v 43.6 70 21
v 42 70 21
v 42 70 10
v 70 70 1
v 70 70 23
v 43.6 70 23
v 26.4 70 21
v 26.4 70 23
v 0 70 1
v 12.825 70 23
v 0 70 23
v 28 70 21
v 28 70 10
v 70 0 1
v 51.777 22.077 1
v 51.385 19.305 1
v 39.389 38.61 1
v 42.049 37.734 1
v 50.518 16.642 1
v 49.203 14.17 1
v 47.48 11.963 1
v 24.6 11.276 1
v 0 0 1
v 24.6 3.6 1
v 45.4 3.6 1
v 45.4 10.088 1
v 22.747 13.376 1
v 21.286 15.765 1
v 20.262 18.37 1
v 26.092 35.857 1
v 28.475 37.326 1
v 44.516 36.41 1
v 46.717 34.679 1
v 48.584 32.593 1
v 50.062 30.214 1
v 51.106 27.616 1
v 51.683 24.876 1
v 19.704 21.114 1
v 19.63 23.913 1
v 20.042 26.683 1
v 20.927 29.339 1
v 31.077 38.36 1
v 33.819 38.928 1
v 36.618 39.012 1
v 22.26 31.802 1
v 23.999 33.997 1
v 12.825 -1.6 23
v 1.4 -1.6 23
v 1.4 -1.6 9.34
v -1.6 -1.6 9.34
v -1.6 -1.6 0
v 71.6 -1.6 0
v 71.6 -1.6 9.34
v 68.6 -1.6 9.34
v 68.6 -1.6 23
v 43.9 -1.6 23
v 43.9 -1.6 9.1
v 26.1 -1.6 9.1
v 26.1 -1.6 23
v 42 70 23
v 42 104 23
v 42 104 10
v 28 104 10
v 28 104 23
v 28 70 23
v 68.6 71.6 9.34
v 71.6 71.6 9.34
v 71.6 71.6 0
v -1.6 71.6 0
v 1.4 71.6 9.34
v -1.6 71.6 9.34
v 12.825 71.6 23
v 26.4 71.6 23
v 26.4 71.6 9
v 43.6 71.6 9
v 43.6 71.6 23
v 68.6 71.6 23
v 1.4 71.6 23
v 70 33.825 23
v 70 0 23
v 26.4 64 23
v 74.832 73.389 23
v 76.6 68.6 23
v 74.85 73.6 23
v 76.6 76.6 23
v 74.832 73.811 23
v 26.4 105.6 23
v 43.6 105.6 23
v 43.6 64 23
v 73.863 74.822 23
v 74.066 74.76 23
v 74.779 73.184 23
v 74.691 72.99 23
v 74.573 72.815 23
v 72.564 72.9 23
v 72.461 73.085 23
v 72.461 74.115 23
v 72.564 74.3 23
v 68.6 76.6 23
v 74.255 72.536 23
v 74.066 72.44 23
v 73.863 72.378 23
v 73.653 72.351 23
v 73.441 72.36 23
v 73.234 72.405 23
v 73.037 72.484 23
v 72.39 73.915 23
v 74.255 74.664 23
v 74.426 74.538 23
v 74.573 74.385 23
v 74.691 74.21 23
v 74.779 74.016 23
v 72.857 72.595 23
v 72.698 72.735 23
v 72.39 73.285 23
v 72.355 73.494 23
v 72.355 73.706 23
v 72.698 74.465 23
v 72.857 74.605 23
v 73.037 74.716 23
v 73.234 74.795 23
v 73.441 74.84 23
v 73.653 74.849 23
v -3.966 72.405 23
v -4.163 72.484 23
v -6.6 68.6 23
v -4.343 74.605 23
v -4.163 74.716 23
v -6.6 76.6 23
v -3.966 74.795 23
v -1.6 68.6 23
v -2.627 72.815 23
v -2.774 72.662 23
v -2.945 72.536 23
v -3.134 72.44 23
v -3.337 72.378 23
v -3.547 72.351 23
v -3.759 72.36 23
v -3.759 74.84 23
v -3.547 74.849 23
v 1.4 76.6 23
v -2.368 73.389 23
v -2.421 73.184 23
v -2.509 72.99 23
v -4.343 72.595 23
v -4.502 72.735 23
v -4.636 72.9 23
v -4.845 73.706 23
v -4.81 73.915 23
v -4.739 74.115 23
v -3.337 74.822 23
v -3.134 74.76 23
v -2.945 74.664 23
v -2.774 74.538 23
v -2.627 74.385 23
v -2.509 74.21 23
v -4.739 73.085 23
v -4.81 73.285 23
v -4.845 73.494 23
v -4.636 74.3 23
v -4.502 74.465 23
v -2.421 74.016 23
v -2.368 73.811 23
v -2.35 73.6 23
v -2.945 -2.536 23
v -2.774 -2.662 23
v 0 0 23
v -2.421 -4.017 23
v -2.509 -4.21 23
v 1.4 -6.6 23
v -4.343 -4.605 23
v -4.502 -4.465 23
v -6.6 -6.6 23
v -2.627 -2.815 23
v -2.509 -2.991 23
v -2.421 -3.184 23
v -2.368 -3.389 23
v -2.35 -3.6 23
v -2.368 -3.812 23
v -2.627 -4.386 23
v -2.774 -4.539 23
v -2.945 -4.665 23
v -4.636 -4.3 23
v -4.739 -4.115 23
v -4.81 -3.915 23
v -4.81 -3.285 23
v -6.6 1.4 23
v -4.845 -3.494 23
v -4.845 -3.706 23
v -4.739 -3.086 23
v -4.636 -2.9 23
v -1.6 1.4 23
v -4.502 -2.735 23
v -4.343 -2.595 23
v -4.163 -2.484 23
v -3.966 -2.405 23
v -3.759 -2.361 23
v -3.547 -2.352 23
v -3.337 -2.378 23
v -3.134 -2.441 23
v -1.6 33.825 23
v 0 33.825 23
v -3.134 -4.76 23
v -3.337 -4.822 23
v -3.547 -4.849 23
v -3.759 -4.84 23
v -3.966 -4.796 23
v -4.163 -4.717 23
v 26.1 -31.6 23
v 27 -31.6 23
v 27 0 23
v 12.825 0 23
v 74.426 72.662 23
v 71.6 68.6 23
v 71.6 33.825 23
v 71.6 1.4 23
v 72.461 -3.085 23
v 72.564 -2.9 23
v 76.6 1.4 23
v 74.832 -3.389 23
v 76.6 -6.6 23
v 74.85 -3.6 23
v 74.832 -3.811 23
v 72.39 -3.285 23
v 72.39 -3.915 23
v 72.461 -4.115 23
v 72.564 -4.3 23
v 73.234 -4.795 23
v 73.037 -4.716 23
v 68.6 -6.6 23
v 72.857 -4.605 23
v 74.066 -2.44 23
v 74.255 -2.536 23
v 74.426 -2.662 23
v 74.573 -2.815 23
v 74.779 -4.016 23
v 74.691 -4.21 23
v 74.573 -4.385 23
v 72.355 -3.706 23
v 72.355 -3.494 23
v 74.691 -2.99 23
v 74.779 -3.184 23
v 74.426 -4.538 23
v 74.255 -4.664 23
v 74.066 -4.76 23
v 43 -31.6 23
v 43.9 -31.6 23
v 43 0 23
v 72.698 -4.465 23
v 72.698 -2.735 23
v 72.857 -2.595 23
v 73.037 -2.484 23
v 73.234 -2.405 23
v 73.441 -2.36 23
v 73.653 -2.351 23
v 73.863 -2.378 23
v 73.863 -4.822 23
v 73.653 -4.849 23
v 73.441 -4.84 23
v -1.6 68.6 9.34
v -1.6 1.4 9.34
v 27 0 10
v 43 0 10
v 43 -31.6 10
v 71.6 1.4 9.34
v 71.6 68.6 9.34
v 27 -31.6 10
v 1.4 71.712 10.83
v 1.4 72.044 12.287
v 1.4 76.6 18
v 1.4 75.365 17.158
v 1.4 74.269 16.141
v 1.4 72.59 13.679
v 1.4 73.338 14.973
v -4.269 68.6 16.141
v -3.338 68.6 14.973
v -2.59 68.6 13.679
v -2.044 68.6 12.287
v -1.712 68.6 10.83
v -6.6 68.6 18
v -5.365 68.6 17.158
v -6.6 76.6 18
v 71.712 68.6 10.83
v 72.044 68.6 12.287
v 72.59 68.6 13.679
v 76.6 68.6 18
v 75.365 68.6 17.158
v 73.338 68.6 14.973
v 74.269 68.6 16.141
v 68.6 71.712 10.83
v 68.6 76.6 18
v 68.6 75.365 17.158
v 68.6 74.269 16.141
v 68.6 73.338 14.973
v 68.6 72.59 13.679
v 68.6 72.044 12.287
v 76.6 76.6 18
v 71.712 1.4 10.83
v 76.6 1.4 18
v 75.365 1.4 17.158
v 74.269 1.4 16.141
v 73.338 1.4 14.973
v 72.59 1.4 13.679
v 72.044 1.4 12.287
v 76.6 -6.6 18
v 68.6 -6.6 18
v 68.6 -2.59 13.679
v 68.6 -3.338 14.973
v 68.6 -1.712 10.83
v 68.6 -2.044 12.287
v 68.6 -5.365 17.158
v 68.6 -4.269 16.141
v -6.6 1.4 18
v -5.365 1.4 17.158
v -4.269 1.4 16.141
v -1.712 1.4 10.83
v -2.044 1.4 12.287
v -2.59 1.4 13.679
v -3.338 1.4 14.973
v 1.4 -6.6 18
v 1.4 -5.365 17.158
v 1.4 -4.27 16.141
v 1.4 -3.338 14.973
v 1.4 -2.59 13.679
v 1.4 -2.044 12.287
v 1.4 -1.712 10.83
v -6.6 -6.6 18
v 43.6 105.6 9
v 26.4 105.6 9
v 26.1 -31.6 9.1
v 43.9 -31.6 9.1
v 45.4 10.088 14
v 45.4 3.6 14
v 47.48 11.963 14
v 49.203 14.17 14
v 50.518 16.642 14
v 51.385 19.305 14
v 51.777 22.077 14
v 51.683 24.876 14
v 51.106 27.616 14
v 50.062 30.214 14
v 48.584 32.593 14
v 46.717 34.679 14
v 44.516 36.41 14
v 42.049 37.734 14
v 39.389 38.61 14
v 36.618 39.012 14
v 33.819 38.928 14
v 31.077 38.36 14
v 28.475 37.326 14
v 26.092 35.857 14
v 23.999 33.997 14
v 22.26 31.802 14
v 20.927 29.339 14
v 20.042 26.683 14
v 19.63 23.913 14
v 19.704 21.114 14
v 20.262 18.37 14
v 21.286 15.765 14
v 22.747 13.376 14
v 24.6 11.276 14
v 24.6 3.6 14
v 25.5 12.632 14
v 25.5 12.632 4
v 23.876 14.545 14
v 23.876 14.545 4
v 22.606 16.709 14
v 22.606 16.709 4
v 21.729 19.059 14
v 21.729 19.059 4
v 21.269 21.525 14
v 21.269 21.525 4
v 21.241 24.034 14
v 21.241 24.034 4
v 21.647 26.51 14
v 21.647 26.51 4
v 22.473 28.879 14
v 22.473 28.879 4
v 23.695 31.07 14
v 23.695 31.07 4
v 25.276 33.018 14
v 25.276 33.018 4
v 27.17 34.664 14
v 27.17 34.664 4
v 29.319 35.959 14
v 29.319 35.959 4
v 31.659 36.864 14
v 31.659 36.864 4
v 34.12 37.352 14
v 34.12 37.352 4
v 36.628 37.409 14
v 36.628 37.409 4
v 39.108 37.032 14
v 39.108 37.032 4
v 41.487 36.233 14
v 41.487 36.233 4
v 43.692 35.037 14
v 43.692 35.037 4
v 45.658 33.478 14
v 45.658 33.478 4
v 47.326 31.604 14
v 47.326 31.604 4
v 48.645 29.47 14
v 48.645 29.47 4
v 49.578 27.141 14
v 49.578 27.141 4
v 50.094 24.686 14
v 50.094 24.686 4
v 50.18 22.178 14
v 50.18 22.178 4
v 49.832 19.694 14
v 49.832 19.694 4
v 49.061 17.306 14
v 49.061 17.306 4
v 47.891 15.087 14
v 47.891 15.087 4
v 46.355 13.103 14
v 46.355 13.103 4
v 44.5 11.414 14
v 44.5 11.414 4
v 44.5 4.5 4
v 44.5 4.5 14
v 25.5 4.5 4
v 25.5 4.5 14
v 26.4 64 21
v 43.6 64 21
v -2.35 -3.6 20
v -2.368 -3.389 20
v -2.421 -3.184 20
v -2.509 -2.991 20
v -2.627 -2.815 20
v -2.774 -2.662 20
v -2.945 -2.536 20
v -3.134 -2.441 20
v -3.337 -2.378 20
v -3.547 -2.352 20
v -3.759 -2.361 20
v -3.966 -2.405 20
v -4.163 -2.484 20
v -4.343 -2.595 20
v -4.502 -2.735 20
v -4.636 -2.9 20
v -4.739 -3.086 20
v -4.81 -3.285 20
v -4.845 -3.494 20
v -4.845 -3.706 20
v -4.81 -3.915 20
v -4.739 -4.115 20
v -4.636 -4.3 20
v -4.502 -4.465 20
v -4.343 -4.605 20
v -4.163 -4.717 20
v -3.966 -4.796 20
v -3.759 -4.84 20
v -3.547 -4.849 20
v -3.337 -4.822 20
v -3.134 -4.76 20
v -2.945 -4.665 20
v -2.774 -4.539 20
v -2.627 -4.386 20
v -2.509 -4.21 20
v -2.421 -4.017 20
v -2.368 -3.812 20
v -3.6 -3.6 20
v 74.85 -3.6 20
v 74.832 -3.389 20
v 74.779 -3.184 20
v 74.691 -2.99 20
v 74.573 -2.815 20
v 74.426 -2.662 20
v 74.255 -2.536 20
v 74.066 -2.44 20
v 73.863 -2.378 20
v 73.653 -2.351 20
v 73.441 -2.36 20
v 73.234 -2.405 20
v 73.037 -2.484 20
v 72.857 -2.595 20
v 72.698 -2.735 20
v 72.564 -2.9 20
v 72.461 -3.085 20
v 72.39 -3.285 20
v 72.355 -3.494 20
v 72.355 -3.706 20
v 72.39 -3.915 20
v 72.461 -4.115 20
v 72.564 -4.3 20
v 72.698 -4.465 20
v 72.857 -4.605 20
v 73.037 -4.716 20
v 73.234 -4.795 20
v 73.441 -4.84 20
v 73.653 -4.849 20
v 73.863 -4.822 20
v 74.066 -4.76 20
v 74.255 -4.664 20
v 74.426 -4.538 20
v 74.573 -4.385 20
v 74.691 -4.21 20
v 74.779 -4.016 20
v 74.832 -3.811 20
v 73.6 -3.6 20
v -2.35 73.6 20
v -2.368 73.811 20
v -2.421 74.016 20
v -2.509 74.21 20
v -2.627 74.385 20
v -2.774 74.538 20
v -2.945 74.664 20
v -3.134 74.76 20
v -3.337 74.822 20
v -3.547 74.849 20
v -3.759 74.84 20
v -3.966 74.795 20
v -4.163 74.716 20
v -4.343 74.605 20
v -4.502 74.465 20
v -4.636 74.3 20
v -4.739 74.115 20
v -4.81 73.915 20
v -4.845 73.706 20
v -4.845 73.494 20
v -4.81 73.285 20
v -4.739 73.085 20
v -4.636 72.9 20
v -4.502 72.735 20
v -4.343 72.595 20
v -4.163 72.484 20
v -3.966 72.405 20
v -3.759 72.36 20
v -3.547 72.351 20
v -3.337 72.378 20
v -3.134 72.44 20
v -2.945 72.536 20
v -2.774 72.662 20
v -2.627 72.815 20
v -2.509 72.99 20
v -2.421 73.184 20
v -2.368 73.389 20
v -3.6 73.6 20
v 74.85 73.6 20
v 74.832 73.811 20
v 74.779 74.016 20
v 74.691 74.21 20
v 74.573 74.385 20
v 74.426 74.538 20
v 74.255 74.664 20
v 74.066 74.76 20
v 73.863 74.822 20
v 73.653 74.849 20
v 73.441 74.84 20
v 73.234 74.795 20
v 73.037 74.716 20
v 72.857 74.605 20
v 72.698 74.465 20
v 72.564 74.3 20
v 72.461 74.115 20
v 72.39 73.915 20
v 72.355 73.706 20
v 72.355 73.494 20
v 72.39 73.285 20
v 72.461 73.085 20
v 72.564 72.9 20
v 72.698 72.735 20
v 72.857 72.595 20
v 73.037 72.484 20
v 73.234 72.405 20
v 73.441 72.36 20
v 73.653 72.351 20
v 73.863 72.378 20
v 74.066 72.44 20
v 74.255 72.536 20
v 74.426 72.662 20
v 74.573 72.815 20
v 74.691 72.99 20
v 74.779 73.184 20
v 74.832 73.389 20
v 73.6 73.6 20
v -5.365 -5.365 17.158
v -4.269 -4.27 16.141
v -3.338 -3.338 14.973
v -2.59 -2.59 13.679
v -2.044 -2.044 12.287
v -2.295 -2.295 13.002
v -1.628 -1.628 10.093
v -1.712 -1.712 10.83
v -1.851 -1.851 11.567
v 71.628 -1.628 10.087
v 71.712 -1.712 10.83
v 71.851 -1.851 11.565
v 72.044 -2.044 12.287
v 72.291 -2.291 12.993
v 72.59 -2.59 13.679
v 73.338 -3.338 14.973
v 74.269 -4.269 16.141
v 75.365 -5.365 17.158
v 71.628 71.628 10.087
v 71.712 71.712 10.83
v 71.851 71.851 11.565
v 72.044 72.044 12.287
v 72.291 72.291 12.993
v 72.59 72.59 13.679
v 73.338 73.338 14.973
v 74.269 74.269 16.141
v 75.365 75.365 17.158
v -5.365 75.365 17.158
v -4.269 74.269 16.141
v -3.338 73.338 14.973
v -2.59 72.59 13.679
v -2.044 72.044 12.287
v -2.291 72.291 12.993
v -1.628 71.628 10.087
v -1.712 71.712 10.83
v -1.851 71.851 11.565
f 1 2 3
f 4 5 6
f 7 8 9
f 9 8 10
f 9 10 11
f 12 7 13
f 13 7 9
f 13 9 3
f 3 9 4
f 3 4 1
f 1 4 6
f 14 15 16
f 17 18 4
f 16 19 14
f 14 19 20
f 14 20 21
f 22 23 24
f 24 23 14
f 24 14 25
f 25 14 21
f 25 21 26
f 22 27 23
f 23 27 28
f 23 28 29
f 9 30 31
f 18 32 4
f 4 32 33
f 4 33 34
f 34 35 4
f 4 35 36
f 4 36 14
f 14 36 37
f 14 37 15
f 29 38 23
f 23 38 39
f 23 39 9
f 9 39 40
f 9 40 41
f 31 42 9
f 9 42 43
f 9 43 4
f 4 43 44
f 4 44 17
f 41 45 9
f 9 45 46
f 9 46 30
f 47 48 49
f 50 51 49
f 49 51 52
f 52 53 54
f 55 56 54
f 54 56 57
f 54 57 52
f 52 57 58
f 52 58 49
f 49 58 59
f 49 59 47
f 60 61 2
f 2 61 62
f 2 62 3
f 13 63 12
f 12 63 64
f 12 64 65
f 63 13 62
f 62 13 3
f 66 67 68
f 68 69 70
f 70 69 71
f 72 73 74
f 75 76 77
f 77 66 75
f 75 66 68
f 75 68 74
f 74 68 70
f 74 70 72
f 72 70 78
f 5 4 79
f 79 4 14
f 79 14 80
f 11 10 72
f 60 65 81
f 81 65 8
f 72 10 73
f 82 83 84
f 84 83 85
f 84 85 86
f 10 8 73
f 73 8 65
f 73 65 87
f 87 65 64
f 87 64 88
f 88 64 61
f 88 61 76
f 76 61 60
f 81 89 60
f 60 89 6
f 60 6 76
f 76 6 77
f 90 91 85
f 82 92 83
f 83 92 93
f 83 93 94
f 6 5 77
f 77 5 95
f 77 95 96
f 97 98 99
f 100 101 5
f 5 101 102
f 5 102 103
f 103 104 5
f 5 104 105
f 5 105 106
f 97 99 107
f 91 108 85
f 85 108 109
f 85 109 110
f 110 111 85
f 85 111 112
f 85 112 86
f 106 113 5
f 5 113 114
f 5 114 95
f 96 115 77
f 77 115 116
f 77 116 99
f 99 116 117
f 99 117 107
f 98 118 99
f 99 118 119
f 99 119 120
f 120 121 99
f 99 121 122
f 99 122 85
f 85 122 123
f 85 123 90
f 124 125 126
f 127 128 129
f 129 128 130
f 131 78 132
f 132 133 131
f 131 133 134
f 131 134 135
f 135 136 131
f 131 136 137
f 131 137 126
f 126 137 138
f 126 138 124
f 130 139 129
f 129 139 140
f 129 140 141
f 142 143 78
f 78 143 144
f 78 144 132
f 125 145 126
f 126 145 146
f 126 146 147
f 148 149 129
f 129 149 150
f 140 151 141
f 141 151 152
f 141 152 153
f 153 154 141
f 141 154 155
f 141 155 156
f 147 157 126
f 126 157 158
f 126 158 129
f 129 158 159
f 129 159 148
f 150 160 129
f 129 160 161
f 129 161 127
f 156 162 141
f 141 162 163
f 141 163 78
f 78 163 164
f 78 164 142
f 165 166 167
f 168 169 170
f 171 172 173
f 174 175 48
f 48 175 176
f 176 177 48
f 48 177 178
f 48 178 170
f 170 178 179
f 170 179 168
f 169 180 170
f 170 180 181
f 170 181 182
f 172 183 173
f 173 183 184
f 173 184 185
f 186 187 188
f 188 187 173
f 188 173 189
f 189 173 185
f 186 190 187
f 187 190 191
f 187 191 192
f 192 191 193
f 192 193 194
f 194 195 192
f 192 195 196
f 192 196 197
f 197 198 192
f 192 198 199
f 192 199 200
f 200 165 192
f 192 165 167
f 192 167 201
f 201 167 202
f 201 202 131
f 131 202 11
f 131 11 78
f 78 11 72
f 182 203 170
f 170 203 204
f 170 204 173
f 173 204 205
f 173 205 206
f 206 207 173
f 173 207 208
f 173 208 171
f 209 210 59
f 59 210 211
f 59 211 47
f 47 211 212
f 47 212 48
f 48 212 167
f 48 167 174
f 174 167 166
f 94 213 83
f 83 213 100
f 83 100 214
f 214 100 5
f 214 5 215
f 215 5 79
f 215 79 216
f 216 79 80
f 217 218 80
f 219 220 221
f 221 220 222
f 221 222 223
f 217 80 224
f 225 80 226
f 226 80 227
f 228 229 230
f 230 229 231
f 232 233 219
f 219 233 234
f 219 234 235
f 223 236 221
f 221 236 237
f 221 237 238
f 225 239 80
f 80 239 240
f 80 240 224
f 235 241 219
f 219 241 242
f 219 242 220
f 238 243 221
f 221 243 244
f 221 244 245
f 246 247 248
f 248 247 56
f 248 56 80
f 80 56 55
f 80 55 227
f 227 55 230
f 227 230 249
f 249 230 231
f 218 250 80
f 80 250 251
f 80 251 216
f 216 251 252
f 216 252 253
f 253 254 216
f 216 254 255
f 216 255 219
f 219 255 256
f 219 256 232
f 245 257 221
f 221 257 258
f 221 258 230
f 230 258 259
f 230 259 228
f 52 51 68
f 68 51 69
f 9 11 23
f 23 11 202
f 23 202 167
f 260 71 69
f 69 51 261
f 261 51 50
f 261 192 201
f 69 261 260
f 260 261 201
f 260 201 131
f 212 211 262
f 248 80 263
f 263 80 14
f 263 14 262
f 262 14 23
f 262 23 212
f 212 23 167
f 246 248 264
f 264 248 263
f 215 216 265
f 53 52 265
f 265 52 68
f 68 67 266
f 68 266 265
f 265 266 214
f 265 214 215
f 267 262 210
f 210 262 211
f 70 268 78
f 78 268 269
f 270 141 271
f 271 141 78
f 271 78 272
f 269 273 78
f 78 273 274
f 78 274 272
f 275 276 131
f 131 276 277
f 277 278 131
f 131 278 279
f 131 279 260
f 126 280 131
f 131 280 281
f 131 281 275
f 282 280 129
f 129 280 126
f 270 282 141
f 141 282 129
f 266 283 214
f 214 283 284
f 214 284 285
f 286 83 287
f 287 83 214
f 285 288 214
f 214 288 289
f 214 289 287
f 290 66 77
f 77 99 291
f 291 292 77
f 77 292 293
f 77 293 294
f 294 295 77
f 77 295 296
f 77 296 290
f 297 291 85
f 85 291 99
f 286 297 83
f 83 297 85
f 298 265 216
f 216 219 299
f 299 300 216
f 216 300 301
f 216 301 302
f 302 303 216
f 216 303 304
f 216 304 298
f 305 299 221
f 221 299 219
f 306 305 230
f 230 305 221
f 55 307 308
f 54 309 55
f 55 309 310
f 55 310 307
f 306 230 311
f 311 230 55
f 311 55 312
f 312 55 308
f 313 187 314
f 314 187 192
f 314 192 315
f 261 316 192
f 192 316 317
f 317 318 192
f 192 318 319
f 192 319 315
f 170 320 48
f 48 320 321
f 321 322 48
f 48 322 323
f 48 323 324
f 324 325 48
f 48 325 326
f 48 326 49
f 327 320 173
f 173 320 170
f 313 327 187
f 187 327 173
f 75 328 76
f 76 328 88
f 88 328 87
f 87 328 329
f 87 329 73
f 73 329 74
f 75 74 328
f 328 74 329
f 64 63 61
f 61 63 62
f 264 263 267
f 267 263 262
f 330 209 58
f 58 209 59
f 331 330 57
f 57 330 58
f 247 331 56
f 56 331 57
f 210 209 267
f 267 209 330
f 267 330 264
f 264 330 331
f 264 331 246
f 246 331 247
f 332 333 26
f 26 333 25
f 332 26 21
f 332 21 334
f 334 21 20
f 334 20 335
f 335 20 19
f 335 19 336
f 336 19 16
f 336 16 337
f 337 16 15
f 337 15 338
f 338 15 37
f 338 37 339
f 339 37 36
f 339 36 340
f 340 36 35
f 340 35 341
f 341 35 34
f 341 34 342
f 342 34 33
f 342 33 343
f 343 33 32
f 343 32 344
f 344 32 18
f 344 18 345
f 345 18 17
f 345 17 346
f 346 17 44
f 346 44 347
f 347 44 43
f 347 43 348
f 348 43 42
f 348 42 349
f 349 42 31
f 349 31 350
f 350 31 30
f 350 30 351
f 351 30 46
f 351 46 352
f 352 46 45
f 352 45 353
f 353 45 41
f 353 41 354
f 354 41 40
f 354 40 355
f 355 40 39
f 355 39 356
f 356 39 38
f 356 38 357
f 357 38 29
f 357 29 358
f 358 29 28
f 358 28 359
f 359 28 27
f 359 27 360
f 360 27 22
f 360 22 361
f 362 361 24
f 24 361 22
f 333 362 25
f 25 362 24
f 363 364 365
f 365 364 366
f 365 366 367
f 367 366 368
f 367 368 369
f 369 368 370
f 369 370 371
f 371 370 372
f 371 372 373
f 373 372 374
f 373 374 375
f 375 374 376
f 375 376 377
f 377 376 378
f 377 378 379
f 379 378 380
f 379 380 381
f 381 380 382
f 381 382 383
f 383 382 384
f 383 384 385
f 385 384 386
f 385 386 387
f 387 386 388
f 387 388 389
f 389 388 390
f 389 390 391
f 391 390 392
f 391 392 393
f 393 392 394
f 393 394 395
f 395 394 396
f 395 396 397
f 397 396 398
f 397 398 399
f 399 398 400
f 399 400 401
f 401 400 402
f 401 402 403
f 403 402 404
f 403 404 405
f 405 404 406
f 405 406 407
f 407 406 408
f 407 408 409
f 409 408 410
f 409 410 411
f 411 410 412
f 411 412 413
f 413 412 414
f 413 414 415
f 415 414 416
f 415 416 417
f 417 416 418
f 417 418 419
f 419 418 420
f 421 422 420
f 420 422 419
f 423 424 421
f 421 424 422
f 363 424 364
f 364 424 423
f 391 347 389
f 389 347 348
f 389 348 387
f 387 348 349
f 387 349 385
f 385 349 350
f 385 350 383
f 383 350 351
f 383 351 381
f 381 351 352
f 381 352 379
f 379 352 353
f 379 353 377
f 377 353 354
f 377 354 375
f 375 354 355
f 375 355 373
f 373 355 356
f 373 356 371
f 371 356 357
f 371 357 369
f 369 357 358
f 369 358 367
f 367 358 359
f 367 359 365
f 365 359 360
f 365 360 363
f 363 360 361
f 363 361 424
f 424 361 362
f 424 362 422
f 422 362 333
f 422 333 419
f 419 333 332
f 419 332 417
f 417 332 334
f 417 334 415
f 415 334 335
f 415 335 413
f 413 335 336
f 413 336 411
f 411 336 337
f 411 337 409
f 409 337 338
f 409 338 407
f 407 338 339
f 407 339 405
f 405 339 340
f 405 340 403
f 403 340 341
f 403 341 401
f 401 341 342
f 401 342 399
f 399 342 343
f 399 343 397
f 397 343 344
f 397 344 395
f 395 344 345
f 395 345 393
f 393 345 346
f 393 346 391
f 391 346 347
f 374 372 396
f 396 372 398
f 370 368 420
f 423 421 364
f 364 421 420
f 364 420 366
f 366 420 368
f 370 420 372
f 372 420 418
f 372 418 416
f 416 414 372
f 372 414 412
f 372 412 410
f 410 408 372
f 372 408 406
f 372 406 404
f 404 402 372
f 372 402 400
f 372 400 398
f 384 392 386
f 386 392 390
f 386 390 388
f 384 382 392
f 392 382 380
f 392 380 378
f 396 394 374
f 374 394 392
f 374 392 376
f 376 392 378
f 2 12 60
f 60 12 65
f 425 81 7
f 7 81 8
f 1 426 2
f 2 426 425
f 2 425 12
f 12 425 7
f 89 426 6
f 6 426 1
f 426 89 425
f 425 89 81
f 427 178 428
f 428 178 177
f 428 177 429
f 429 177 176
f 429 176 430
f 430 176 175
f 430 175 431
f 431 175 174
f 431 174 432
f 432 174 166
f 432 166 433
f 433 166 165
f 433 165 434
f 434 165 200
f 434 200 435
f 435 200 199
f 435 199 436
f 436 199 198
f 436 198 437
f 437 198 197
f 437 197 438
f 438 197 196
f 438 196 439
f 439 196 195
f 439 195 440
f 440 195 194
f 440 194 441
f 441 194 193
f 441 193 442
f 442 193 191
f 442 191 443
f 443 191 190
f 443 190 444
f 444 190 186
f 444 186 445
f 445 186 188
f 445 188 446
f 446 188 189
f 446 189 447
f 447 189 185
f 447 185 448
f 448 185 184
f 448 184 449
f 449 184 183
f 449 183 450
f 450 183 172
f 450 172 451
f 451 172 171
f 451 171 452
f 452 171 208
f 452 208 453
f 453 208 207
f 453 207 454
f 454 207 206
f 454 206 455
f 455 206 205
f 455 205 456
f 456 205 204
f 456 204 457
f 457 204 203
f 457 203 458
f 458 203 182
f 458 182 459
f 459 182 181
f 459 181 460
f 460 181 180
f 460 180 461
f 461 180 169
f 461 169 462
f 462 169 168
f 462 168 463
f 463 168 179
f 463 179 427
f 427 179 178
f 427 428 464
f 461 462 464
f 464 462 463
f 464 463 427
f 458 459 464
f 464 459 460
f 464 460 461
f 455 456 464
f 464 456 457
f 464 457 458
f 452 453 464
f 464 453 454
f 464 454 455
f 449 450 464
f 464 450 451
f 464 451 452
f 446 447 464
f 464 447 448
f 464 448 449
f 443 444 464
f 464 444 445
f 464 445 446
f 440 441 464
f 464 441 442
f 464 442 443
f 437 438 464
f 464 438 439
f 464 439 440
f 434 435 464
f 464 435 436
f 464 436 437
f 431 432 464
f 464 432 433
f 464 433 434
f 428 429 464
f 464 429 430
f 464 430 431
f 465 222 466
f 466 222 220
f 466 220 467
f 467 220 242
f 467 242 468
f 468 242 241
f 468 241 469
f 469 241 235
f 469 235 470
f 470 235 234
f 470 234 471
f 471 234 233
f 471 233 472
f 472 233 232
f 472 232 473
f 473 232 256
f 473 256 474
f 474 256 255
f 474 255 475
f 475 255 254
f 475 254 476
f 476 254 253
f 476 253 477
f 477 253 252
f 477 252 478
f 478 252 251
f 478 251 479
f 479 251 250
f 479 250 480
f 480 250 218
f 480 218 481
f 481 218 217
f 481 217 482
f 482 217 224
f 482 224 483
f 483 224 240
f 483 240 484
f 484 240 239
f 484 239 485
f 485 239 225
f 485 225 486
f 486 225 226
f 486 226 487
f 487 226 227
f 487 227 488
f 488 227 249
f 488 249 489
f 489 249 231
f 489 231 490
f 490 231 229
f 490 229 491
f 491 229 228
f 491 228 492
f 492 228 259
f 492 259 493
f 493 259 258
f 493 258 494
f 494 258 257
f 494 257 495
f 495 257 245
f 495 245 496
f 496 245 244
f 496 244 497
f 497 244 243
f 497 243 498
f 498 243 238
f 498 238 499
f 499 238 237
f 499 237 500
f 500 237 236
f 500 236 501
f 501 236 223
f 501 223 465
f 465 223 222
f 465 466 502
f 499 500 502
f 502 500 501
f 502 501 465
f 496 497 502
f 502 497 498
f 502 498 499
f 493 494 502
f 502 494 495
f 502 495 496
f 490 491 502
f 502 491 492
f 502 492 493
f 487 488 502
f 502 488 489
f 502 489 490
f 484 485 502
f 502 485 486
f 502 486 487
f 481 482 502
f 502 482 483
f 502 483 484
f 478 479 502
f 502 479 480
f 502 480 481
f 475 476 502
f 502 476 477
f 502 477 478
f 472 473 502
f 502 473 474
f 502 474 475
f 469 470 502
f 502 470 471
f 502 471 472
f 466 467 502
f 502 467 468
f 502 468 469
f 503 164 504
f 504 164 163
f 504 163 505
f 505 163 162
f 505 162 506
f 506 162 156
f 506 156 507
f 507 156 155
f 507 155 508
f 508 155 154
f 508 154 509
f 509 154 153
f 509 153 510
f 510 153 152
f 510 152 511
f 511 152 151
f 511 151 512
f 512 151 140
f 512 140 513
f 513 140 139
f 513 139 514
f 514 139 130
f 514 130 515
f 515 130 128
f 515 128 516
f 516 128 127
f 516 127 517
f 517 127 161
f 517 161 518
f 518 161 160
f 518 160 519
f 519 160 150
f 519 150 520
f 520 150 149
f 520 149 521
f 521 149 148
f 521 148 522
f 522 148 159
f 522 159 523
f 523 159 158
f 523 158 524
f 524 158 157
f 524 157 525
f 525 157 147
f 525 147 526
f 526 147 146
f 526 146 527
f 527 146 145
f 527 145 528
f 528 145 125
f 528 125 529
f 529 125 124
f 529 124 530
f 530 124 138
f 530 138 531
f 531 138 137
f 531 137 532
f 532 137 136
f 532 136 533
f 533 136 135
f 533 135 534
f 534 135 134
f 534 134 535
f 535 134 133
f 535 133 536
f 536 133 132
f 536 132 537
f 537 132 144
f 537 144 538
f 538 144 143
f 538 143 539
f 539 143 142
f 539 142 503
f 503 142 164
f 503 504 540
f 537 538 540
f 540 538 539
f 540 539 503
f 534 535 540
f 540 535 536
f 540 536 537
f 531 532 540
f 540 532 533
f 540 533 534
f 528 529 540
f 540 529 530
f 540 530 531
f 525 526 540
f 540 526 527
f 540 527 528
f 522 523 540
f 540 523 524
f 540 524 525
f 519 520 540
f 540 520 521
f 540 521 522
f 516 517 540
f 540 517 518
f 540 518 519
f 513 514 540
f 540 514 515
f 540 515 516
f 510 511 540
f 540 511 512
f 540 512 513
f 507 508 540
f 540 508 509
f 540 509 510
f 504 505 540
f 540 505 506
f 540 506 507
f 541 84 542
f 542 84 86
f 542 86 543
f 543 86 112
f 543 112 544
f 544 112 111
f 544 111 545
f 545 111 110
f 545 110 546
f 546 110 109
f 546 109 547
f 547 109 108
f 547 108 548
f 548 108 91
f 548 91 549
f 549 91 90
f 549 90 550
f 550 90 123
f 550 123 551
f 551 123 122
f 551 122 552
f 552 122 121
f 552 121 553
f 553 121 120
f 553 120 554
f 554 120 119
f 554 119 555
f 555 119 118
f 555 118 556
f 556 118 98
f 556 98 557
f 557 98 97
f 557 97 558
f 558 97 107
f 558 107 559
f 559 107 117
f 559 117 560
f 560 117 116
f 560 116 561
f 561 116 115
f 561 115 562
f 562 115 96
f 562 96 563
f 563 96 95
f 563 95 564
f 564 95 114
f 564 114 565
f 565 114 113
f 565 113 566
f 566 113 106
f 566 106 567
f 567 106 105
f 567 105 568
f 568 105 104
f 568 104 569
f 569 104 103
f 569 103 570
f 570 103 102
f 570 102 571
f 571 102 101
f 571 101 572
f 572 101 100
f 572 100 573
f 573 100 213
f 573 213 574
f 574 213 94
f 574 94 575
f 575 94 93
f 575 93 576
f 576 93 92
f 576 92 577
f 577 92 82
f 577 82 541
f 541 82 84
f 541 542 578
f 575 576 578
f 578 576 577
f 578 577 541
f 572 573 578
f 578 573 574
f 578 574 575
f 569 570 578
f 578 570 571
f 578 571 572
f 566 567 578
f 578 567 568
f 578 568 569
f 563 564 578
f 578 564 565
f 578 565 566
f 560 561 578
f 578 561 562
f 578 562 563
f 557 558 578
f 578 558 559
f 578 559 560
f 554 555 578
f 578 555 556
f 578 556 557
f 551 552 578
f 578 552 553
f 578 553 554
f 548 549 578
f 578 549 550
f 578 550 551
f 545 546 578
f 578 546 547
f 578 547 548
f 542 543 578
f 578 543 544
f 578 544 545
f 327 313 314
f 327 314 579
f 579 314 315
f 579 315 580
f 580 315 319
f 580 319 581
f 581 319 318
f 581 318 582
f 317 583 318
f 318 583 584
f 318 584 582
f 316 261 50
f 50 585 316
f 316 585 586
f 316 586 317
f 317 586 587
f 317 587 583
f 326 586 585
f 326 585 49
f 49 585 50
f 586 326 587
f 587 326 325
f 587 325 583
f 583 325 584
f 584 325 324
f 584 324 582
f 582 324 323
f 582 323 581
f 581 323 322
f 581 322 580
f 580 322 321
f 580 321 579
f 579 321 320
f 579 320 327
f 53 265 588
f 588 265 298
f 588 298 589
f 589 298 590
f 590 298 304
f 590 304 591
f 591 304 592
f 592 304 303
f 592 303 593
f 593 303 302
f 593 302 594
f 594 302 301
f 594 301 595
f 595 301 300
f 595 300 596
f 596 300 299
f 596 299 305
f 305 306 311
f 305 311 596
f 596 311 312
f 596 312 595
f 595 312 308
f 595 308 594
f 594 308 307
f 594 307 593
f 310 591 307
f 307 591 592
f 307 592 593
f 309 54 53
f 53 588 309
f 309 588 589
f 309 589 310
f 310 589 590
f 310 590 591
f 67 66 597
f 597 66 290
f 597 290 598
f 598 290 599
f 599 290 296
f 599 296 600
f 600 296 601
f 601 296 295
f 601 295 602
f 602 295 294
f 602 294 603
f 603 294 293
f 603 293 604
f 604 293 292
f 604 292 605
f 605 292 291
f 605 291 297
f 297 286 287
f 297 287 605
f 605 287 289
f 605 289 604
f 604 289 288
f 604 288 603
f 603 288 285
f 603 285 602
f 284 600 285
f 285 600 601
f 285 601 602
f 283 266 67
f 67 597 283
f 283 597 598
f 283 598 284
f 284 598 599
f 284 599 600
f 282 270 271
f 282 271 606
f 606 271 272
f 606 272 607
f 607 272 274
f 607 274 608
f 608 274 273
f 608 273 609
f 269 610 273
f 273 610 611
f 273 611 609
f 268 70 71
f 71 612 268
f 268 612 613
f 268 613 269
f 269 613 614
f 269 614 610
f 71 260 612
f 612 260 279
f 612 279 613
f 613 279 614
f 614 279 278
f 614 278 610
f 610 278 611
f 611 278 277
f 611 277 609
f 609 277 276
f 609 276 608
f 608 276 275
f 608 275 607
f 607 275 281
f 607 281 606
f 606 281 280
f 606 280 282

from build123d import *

# Parameters (mm, degrees)
BOSS_EXTRUDE2_DEPTH     = 23
BOSS_EXTRUDE2_2_DEPTH   = 23
BOSS_EXTRUDE2_3_DEPTH   = 23
BOSS_EXTRUDE2_4_DEPTH   = 23
SKETCH2_W               = 70
SKETCH2_H               = 1
BOSS_EXTRUDE3_DEPTH     = 70
SKETCH1_5_W             = 14
SKETCH1_5_H             = 1.6
BOSS_EXTRUDE4_DEPTH     = 10
BOSS_EXTRUDE5_DEPTH     = 5
SKETCH5_W               = 1.6
SKETCH5_H               = 35.6
BOSS_EXTRUDE6_DEPTH     = 1
SKETCH5_5_W             = 1.6
SKETCH5_5_H             = 35.6
BOSS_EXTRUDE7_DEPTH     = 14
SKETCH6_W               = 17.2
SKETCH6_H               = 1
BOSS_EXTRUDE8_DEPTH     = 34
SKETCH7_W               = 17.2
SKETCH7_H               = 1.6
BOSS_EXTRUDE9_DEPTH     = 13
BOSS_EXTRUDE10_DEPTH    = 10
BOSS_EXTRUDE11_DEPTH    = 30
SKETCH1_12_W            = 1.6
SKETCH1_12_H            = 10
BOSS_EXTRUDE18_DEPTH    = 23
BOSS_EXTRUDE14_DEPTH    = 3
BOSS_EXTRUDE15_DEPTH    = 13
SKETCH11_W              = 17.2
SKETCH11_H              = 2
BOSS_EXTRUDE16_DEPTH    = 6
ADVANCEDHOLE1_START     = 20
ADVANCEDHOLE1_OUTLINE_R = 1.25
ADVANCEDHOLE1_DEPTH     = 3
SKETCH1_11_W            = 1.6
SKETCH1_11_H            = 10
BOSS_EXTRUDE17_DEPTH    = 23
FILLET1_R               = 10


# Read off the part's stored shape, not the designer's step: AdvancedHole1
with BuildPart() as part:
    # Sketch1 → Boss-Extrude2 (new body)
    with BuildSketch(Plane.XY):
        Polygon((27, 0), (0, 0), (0, 30), (-1.6, 30), (-1.6, -1.6), (27, -1.6), align=None)
    extrude(amount=BOSS_EXTRUDE2_DEPTH)



with BuildPart() as body_2:
    # Sketch1 → Boss-Extrude2 2 (new body)
    with BuildSketch(Plane.XY):
        Polygon((-1.6, 40), (0, 40), (0, 70), (28, 70), (28, 71.6), (-1.6, 71.6), align=None)
    extrude(amount=BOSS_EXTRUDE2_2_DEPTH)


with BuildPart() as body_3:
    # Sketch1 → Boss-Extrude2 3 (new body)
    with BuildSketch(Plane.XY):
        Polygon((70, 0), (43, 0), (43, -1.6), (71.6, -1.6), (71.6, 30), (70, 30), align=None)
    extrude(amount=BOSS_EXTRUDE2_3_DEPTH)


with BuildPart() as body_4:
    # Sketch1 → Boss-Extrude2 4 (new body)
    with BuildSketch(Plane.XY):
        Polygon((42, 71.6), (42, 70), (70, 70), (70, 40), (71.6, 40), (71.6, 71.6), align=None)
    extrude(amount=BOSS_EXTRUDE2_4_DEPTH)


with BuildPart() as part_1:
    add(part.part)

    add(body_2.part)  # Boss-Extrude3 merges body 2

    add(body_3.part)  # Boss-Extrude3 merges body 3

    add(body_4.part)  # Boss-Extrude3 merges body 4
    # Sketch2 → Boss-Extrude3 (add)
    with BuildSketch(Plane(origin=(0, 0, 0), x_dir=(1, 0, 0), z_dir=(0, 1, 0))):
        with Locations((35, -0.5)):
            Rectangle(SKETCH2_W, SKETCH2_H)
    extrude(amount=BOSS_EXTRUDE3_DEPTH)

    # Sketch1<5> → Boss-Extrude4 (add)
    with BuildSketch(Plane.XY):
        with Locations((35, 70.8)):
            Rectangle(SKETCH1_5_W, SKETCH1_5_H)
    extrude(amount=BOSS_EXTRUDE4_DEPTH)

    # Sketch4 → Boss-Extrude5 (add)
    with BuildSketch(Plane.XY.offset(23)):
        Polygon((1.4, 71.6), (1.4, 74.604290744), (-4.6, 74.604290744), (-4.6, 68.6), (-1.6, 68.6), (-1.6, 71.6), align=None)
        Polygon((-4.6, 74.604290744), (1.4, 74.604290744), (1.4, 76.6), (-6.6, 76.6), (-6.6, 68.6), (-4.6, 68.6), align=None)
        Polygon((74.608581487, 74.604290744), (68.6, 74.604290744), (68.6, 71.6), (71.6, 71.6), (71.6, 68.6), (74.608581487, 68.6), align=None)
        Polygon((68.6, 76.6), (68.6, 74.604290744), (74.608581487, 74.604290744), (74.608581487, 68.6), (76.6, 68.6), (76.6, 76.6), align=None)
        Polygon((74.608581487, -4.604290744), (74.608581487, 1.4), (71.6, 1.4), (71.6, -1.6), (68.6, -1.6), (68.6, -4.604290744), align=None)
        Polygon((76.6, 1.4), (74.608581487, 1.4), (74.608581487, -4.604290744), (68.6, -4.604290744), (68.6, -6.6), (76.6, -6.6), align=None)
        Polygon((-1.6, 1.399584801), (-4.6, 1.399584801), (-4.6, -4.604290744), (1.4, -4.604290744), (1.4, -1.6), (-1.6, -1.6), align=None)
        Polygon((-4.6, -4.604290744), (-4.6, 1.399584801), (-6.6, 1.399584801), (-6.6, -6.600415199), (1.4, -6.600415199), (1.4, -4.604290744), align=None)
    extrude(amount=-BOSS_EXTRUDE5_DEPTH)

    # Sketch5 → Boss-Extrude6 (add)
    with BuildSketch(Plane.XY.offset(23)):
        with Locations((27.2, 87.8)):
            Rectangle(SKETCH5_W, SKETCH5_H)
        with Locations((42.8, 87.8)):
            Rectangle(SKETCH5_W, SKETCH5_H)
    extrude(amount=-BOSS_EXTRUDE6_DEPTH)

    # Sketch5<5> → Boss-Extrude7 (add)
    with BuildSketch(Plane.XY.offset(23)):
        with Locations((27.2, 87.8)):
            Rectangle(SKETCH5_5_W, SKETCH5_5_H)
        with Locations((42.8, 87.8)):
            Rectangle(SKETCH5_5_W, SKETCH5_5_H)
    extrude(amount=-BOSS_EXTRUDE7_DEPTH)

    # Sketch6 → Boss-Extrude8 (add)
    with BuildSketch(Plane(origin=(0, 71.6, 0), x_dir=(1, 0, 0), z_dir=(0, 1, 0))):
        with Locations((35, -9.5)):
            Rectangle(SKETCH6_W, SKETCH6_H)
    extrude(amount=BOSS_EXTRUDE8_DEPTH)

    # Sketch7 → Boss-Extrude9 (add)
    with BuildSketch(Plane.XY.offset(10)):
        with Locations((35, 104.8)):
            Rectangle(SKETCH7_W, SKETCH7_H)
    extrude(amount=BOSS_EXTRUDE9_DEPTH)

    # Sketch1<9> → Boss-Extrude10 (add)
    with BuildSketch(Plane.XY):
        Polygon((35.002057043, 0), (27, 0), (27, -1.6), (35.00134155, -1.6), align=None)
        Polygon((43, 0), (35.002057043, 0), (35.00134155, -1.6), (43, -1.6), align=None)
    extrude(amount=BOSS_EXTRUDE10_DEPTH)

    # Sketch8 → Boss-Extrude11 (add)
    with BuildSketch(Plane.XZ.offset(1.6)):
        Polygon((27, 23), (26.1, 23), (26.1, 9.1), (43.9, 9.1), (43.9, 23), (43, 23), (43, 10), (27, 10), align=None)
    extrude(amount=BOSS_EXTRUDE11_DEPTH)

    # Sketch1<12> → Boss-Extrude18 (add)
    with BuildSketch(Plane.XY):
        Polygon((-1.6, 30), (0, 30), (0, 40), (-0.266113958, 40), (-1.6, 40), align=None)
        with Locations((70.8, 35)):
            Rectangle(SKETCH1_12_W, SKETCH1_12_H)
    extrude(amount=BOSS_EXTRUDE18_DEPTH)

    # Sketch10 → Boss-Extrude14 (add)
    with BuildSketch(Plane.XY.offset(1)):
        with BuildLine():
            Line((24.6, 3.6), (45.4, 3.6))
            Line((45.4, 3.6), (45.4, 10.08837101))
            ThreePointArc((45.4, 10.08837101), (36.618060655, 39.01207741), (24.6, 11.276369944))
            Line((24.6, 11.276369944), (24.6, 3.6))
        make_face()
    extrude(amount=BOSS_EXTRUDE14_DEPTH)

    # Sketch10<5> → Boss-Extrude15 (add)
    with BuildSketch(Plane.XY.offset(1)):
        with BuildLine():
            Line((24.6, 11.276369944), (24.6, 3.6))
            Line((24.6, 3.6), (45.4, 3.6))
            Line((45.4, 3.6), (45.4, 10.08837101))
            ThreePointArc((45.4, 10.08837101), (36.618060655, 39.01207741), (24.6, 11.276369944))
        make_face()
        with BuildLine():
            Line((44.5, 4.5), (25.5, 4.5))
            Line((25.5, 4.5), (25.5, 12.632450137))
            ThreePointArc((25.5, 12.632450137), (36.628000353, 37.40854724), (44.5, 11.413951628))
            Line((44.5, 11.413951628), (44.5, 4.5))
        make_face(mode=Mode.SUBTRACT)
    extrude(amount=BOSS_EXTRUDE15_DEPTH)

    # Sketch11 → Boss-Extrude16 (add)
    with BuildSketch(Plane.XZ.offset(-70)):
        with Locations((35, 22)):
            Rectangle(SKETCH11_W, SKETCH11_H)
    extrude(amount=BOSS_EXTRUDE16_DEPTH)

    # AdvancedHole1 outline → AdvancedHole1 (cut)
    with BuildSketch(Plane.XY.offset(ADVANCEDHOLE1_START)):
        with Locations((-3.6, -3.600415199)):
            Circle(ADVANCEDHOLE1_OUTLINE_R)
        with Locations((73.6, -3.6)):
            Circle(ADVANCEDHOLE1_OUTLINE_R)
        with Locations((-3.6, 73.6)):
            Circle(ADVANCEDHOLE1_OUTLINE_R)
        with Locations((73.6, 73.6)):
            Circle(ADVANCEDHOLE1_OUTLINE_R)
    extrude(amount=ADVANCEDHOLE1_DEPTH, mode=Mode.SUBTRACT)

    # Sketch1<11> → Boss-Extrude17 (add)
    with BuildSketch(Plane.XY):
        Polygon((-1.6, 30), (0, 30), (0, 40), (-0.266113958, 40), (-1.6, 40), align=None)
        with Locations((70.8, 35)):
            Rectangle(SKETCH1_11_W, SKETCH1_11_H)
    extrude(amount=BOSS_EXTRUDE17_DEPTH)

    # Fillet1
    # the kernel refuses this fillet: 10 mm, written as the material it adds along each edge
    with BuildSketch(Plane(origin=(1.4, -1.6, 18), x_dir=(0, 0, -1), z_dir=(-1, 0, 0))) as fillet1_piece_1:
        with BuildLine():
            CenterArc((8.66049374, 10), FILLET1_R, 209.997253102, 60.002746898)
            Line((0, 5.000415199), (-0.173209875, 4.900423503))
            ThreePointArc((-0.173209875, 4.900423503), (-0.2, 2.5002076), (-0.2, 0))
            Line((-0.2, 0), (0, -0.2))
            Line((0, -0.2), (8.66049374, -0.2))
            Line((8.66049374, -0.2), (8.66049374, 0))
        make_face()
    extrude(amount=3)
    with BuildSketch(Plane(origin=(-1.6, -1.6, 18), x_dir=(0, 0, -1), z_dir=(0, 1, 0))) as fillet1_piece_2:
        with BuildLine():
            CenterArc((8.660254038, 10), FILLET1_R, 210, 60)
            Line((0, 5), (-0.173205081, 4.9))
            ThreePointArc((-0.173205081, 4.9), (-0.2, 2.5), (-0.2, 0))
            Line((-0.2, 0), (0, -0.2))
            Line((0, -0.2), (8.660254038, -0.2))
            Line((8.660254038, -0.2), (8.660254038, 0))
        make_face()
    extrude(amount=2.999584801)
    with BuildSketch(Plane(origin=(71.6, -1.6, 18), x_dir=(0, 0, -1), z_dir=(-1, 0, 0)), Plane(origin=(68.6, 71.6, 18), x_dir=(0, 0, -1), z_dir=(1, 0, 0)), Plane(origin=(-1.6, 68.6, 18), x_dir=(0, 0, -1), z_dir=(0, 1, 0))) as fillet1_piece_3:
        with BuildLine():
            CenterArc((8.660254038, 10), FILLET1_R, 210, 60)
            Line((0, 5), (-0.173205081, 4.9))
            ThreePointArc((-0.173205081, 4.9), (-0.2, 2.5), (-0.2, 0))
            Line((-0.2, 0), (0, -0.2))
            Line((0, -0.2), (8.660254038, -0.2))
            Line((8.660254038, -0.2), (8.660254038, 0))
        make_face()
    extrude(amount=3)
    with BuildSketch(Plane(origin=(71.6, 1.4, 18), x_dir=(1, 0, 0), z_dir=(0, -1, 0)), Plane(origin=(71.6, 71.6, 18), x_dir=(1, 0, 0), z_dir=(0, -1, 0)), Plane(origin=(-1.6, 71.6, 18), x_dir=(0, 1, 0), z_dir=(1, 0, 0))) as fillet1_piece_4:
        with BuildLine():
            CenterArc((10, -8.660254038), FILLET1_R, 120, 60)
            Line((0, -8.660254038), (-0.2, -8.660254038))
            Line((-0.2, -8.660254038), (-0.2, 0))
            Line((-0.2, 0), (0, 0.2))
            ThreePointArc((0, 0.2), (2.5, 0.2), (4.9, 0.173205081))
            Line((4.9, 0.173205081), (5, 0))
        make_face()
    extrude(amount=3)
    with BuildSketch(Plane(origin=(1.4, -1.6, 18), x_dir=(0, 0, -1), z_dir=(-1, 0, 0))) as fillet1_piece_5a_section:
        with BuildLine():
            CenterArc((8.66049374, 10), FILLET1_R, 209.997253102, 60.002746898)
            Line((0, 5.000415199), (-0.173209875, 4.900423503))
            ThreePointArc((-0.173209875, 4.900423503), (-0.2, 2.5002076), (-0.2, 0))
            Line((-0.2, 0), (0, -0.2))
            Line((0, -0.2), (8.66049374, -0.2))
            Line((8.66049374, -0.2), (8.66049374, 0))
        make_face()
    fillet1_piece_5a = extrude(amount=24.65123435, mode=Mode.PRIVATE)
    fillet1_piece_5a = split(fillet1_piece_5a, bisect_by=Plane(origin=(-1.6, -2.895276984, 15.83686011), z_dir=(-1, 0, 0)), keep=Keep.TOP, mode=Mode.PRIVATE)
    fillet1_piece_5a = split(fillet1_piece_5a, bisect_by=Plane(origin=(-6.6, -2.895276984, 15.83686011), z_dir=(1, 0, 0)), keep=Keep.TOP, mode=Mode.PRIVATE)
    with BuildSketch(Plane(origin=(-1.6, -23.250635095, 18), x_dir=(0, 0, -1), z_dir=(0, 1, 0))) as fillet1_piece_5b_section:
        with BuildLine():
            CenterArc((8.660254038, 10), FILLET1_R, 210, 60)
            Line((0, 5), (-0.173205081, 4.9))
            ThreePointArc((-0.173205081, 4.9), (-0.2, 2.5), (-0.2, 0))
            Line((-0.2, 0), (0, -0.2))
            Line((0, -0.2), (8.660254038, -0.2))
            Line((8.660254038, -0.2), (8.660254038, 0))
        make_face()
    fillet1_piece_5b = extrude(amount=24.650219895, mode=Mode.PRIVATE)
    fillet1_piece_5b = split(fillet1_piece_5b, bisect_by=Plane(origin=(-2.895167111, -1.6, 15.836895542), z_dir=(0, -1, 0)), keep=Keep.TOP, mode=Mode.PRIVATE)
    fillet1_piece_5b = split(fillet1_piece_5b, bisect_by=Plane(origin=(-2.895167111, -6.600415199, 15.836895542), z_dir=(0, 1, 0)), keep=Keep.TOP, mode=Mode.PRIVATE)
    fillet1_piece_5 = fillet1_piece_5a & fillet1_piece_5b
    add(fillet1_piece_5)
    with BuildSketch(Plane(origin=(93.250635095, -1.6, 18), x_dir=(0, 0, -1), z_dir=(-1, 0, 0))) as fillet1_piece_6a_section:
        with BuildLine():
            CenterArc((8.660254038, 10), FILLET1_R, 210, 60)
            Line((0, 5), (-0.173205081, 4.9))
            ThreePointArc((-0.173205081, 4.9), (-0.2, 2.5), (-0.2, 0))
            Line((-0.2, 0), (0, -0.2))
            Line((0, -0.2), (8.660254038, -0.2))
            Line((8.660254038, -0.2), (8.660254038, 0))
        make_face()
    fillet1_piece_6a = extrude(amount=24.650635095, mode=Mode.PRIVATE)
    fillet1_piece_6a = split(fillet1_piece_6a, bisect_by=Plane(origin=(71.6, -2.895167111, 15.836895542), z_dir=(1, 0, 0)), keep=Keep.TOP, mode=Mode.PRIVATE)
    fillet1_piece_6a = split(fillet1_piece_6a, bisect_by=Plane(origin=(76.6, -2.895167111, 15.836895542), z_dir=(-1, 0, 0)), keep=Keep.TOP, mode=Mode.PRIVATE)
    with BuildSketch(Plane(origin=(71.6, 1.4, 18), x_dir=(1, 0, 0), z_dir=(0, -1, 0))) as fillet1_piece_6b_section:
        with BuildLine():
            CenterArc((10, -8.660254038), FILLET1_R, 120, 60)
            Line((0, -8.660254038), (-0.2, -8.660254038))
            Line((-0.2, -8.660254038), (-0.2, 0))
            Line((-0.2, 0), (0, 0.2))
            ThreePointArc((0, 0.2), (2.5, 0.2), (4.9, 0.173205081))
            Line((4.9, 0.173205081), (5, 0))
        make_face()
    fillet1_piece_6b = extrude(amount=24.650635095, mode=Mode.PRIVATE)
    fillet1_piece_6b = split(fillet1_piece_6b, bisect_by=Plane(origin=(72.895167111, -1.6, 15.836895542), z_dir=(0, -1, 0)), keep=Keep.TOP, mode=Mode.PRIVATE)
    fillet1_piece_6b = split(fillet1_piece_6b, bisect_by=Plane(origin=(72.895167111, -6.6, 15.836895542), z_dir=(0, 1, 0)), keep=Keep.TOP, mode=Mode.PRIVATE)
    fillet1_piece_6 = fillet1_piece_6a & fillet1_piece_6b
    add(fillet1_piece_6)
    with BuildSketch(Plane(origin=(68.6, 71.6, 18), x_dir=(0, 0, -1), z_dir=(1, 0, 0))) as fillet1_piece_7a_section:
        with BuildLine():
            CenterArc((8.660254038, 10), FILLET1_R, 210, 60)
            Line((0, 5), (-0.173205081, 4.9))
            ThreePointArc((-0.173205081, 4.9), (-0.2, 2.5), (-0.2, 0))
            Line((-0.2, 0), (0, -0.2))
            Line((0, -0.2), (8.660254038, -0.2))
            Line((8.660254038, -0.2), (8.660254038, 0))
        make_face()
    fillet1_piece_7a = extrude(amount=24.650635095, mode=Mode.PRIVATE)
    fillet1_piece_7a = split(fillet1_piece_7a, bisect_by=Plane(origin=(71.6, 72.895167111, 15.836895542), z_dir=(1, 0, 0)), keep=Keep.TOP, mode=Mode.PRIVATE)
    fillet1_piece_7a = split(fillet1_piece_7a, bisect_by=Plane(origin=(76.6, 72.895167111, 15.836895542), z_dir=(-1, 0, 0)), keep=Keep.TOP, mode=Mode.PRIVATE)
    with BuildSketch(Plane(origin=(71.6, 93.250635095, 18), x_dir=(1, 0, 0), z_dir=(0, -1, 0))) as fillet1_piece_7b_section:
        with BuildLine():
            CenterArc((10, -8.660254038), FILLET1_R, 120, 60)
            Line((0, -8.660254038), (-0.2, -8.660254038))
            Line((-0.2, -8.660254038), (-0.2, 0))
            Line((-0.2, 0), (0, 0.2))
            ThreePointArc((0, 0.2), (2.5, 0.2), (4.9, 0.173205081))
            Line((4.9, 0.173205081), (5, 0))
        make_face()
    fillet1_piece_7b = extrude(amount=24.650635095, mode=Mode.PRIVATE)
    fillet1_piece_7b = split(fillet1_piece_7b, bisect_by=Plane(origin=(72.895167111, 71.6, 15.836895542), z_dir=(0, 1, 0)), keep=Keep.TOP, mode=Mode.PRIVATE)
    fillet1_piece_7b = split(fillet1_piece_7b, bisect_by=Plane(origin=(72.895167111, 76.6, 15.836895542), z_dir=(0, -1, 0)), keep=Keep.TOP, mode=Mode.PRIVATE)
    fillet1_piece_7 = fillet1_piece_7a & fillet1_piece_7b
    add(fillet1_piece_7)
    with BuildSketch(Plane(origin=(-1.6, 68.6, 18), x_dir=(0, 0, -1), z_dir=(0, 1, 0))) as fillet1_piece_8a_section:
        with BuildLine():
            CenterArc((8.660254038, 10), FILLET1_R, 210, 60)
            Line((0, 5), (-0.173205081, 4.9))
            ThreePointArc((-0.173205081, 4.9), (-0.2, 2.5), (-0.2, 0))
            Line((-0.2, 0), (0, -0.2))
            Line((0, -0.2), (8.660254038, -0.2))
            Line((8.660254038, -0.2), (8.660254038, 0))
        make_face()
    fillet1_piece_8a = extrude(amount=24.650635095, mode=Mode.PRIVATE)
    fillet1_piece_8a = split(fillet1_piece_8a, bisect_by=Plane(origin=(-2.895167111, 71.6, 15.836895542), z_dir=(0, 1, 0)), keep=Keep.TOP, mode=Mode.PRIVATE)
    fillet1_piece_8a = split(fillet1_piece_8a, bisect_by=Plane(origin=(-2.895167111, 76.6, 15.836895542), z_dir=(0, -1, 0)), keep=Keep.TOP, mode=Mode.PRIVATE)
    with BuildSketch(Plane(origin=(-23.250635095, 71.6, 18), x_dir=(0, 1, 0), z_dir=(1, 0, 0))) as fillet1_piece_8b_section:
        with BuildLine():
            CenterArc((10, -8.660254038), FILLET1_R, 120, 60)
            Line((0, -8.660254038), (-0.2, -8.660254038))
            Line((-0.2, -8.660254038), (-0.2, 0))
            Line((-0.2, 0), (0, 0.2))
            ThreePointArc((0, 0.2), (2.5, 0.2), (4.9, 0.173205081))
            Line((4.9, 0.173205081), (5, 0))
        make_face()
    fillet1_piece_8b = extrude(amount=24.650635095, mode=Mode.PRIVATE)
    fillet1_piece_8b = split(fillet1_piece_8b, bisect_by=Plane(origin=(-1.6, 72.895167111, 15.836895542), z_dir=(-1, 0, 0)), keep=Keep.TOP, mode=Mode.PRIVATE)
    fillet1_piece_8b = split(fillet1_piece_8b, bisect_by=Plane(origin=(-6.6, 72.895167111, 15.836895542), z_dir=(1, 0, 0)), keep=Keep.TOP, mode=Mode.PRIVATE)
    fillet1_piece_8 = fillet1_piece_8a & fillet1_piece_8b
    add(fillet1_piece_8)


solid = part_1.part
